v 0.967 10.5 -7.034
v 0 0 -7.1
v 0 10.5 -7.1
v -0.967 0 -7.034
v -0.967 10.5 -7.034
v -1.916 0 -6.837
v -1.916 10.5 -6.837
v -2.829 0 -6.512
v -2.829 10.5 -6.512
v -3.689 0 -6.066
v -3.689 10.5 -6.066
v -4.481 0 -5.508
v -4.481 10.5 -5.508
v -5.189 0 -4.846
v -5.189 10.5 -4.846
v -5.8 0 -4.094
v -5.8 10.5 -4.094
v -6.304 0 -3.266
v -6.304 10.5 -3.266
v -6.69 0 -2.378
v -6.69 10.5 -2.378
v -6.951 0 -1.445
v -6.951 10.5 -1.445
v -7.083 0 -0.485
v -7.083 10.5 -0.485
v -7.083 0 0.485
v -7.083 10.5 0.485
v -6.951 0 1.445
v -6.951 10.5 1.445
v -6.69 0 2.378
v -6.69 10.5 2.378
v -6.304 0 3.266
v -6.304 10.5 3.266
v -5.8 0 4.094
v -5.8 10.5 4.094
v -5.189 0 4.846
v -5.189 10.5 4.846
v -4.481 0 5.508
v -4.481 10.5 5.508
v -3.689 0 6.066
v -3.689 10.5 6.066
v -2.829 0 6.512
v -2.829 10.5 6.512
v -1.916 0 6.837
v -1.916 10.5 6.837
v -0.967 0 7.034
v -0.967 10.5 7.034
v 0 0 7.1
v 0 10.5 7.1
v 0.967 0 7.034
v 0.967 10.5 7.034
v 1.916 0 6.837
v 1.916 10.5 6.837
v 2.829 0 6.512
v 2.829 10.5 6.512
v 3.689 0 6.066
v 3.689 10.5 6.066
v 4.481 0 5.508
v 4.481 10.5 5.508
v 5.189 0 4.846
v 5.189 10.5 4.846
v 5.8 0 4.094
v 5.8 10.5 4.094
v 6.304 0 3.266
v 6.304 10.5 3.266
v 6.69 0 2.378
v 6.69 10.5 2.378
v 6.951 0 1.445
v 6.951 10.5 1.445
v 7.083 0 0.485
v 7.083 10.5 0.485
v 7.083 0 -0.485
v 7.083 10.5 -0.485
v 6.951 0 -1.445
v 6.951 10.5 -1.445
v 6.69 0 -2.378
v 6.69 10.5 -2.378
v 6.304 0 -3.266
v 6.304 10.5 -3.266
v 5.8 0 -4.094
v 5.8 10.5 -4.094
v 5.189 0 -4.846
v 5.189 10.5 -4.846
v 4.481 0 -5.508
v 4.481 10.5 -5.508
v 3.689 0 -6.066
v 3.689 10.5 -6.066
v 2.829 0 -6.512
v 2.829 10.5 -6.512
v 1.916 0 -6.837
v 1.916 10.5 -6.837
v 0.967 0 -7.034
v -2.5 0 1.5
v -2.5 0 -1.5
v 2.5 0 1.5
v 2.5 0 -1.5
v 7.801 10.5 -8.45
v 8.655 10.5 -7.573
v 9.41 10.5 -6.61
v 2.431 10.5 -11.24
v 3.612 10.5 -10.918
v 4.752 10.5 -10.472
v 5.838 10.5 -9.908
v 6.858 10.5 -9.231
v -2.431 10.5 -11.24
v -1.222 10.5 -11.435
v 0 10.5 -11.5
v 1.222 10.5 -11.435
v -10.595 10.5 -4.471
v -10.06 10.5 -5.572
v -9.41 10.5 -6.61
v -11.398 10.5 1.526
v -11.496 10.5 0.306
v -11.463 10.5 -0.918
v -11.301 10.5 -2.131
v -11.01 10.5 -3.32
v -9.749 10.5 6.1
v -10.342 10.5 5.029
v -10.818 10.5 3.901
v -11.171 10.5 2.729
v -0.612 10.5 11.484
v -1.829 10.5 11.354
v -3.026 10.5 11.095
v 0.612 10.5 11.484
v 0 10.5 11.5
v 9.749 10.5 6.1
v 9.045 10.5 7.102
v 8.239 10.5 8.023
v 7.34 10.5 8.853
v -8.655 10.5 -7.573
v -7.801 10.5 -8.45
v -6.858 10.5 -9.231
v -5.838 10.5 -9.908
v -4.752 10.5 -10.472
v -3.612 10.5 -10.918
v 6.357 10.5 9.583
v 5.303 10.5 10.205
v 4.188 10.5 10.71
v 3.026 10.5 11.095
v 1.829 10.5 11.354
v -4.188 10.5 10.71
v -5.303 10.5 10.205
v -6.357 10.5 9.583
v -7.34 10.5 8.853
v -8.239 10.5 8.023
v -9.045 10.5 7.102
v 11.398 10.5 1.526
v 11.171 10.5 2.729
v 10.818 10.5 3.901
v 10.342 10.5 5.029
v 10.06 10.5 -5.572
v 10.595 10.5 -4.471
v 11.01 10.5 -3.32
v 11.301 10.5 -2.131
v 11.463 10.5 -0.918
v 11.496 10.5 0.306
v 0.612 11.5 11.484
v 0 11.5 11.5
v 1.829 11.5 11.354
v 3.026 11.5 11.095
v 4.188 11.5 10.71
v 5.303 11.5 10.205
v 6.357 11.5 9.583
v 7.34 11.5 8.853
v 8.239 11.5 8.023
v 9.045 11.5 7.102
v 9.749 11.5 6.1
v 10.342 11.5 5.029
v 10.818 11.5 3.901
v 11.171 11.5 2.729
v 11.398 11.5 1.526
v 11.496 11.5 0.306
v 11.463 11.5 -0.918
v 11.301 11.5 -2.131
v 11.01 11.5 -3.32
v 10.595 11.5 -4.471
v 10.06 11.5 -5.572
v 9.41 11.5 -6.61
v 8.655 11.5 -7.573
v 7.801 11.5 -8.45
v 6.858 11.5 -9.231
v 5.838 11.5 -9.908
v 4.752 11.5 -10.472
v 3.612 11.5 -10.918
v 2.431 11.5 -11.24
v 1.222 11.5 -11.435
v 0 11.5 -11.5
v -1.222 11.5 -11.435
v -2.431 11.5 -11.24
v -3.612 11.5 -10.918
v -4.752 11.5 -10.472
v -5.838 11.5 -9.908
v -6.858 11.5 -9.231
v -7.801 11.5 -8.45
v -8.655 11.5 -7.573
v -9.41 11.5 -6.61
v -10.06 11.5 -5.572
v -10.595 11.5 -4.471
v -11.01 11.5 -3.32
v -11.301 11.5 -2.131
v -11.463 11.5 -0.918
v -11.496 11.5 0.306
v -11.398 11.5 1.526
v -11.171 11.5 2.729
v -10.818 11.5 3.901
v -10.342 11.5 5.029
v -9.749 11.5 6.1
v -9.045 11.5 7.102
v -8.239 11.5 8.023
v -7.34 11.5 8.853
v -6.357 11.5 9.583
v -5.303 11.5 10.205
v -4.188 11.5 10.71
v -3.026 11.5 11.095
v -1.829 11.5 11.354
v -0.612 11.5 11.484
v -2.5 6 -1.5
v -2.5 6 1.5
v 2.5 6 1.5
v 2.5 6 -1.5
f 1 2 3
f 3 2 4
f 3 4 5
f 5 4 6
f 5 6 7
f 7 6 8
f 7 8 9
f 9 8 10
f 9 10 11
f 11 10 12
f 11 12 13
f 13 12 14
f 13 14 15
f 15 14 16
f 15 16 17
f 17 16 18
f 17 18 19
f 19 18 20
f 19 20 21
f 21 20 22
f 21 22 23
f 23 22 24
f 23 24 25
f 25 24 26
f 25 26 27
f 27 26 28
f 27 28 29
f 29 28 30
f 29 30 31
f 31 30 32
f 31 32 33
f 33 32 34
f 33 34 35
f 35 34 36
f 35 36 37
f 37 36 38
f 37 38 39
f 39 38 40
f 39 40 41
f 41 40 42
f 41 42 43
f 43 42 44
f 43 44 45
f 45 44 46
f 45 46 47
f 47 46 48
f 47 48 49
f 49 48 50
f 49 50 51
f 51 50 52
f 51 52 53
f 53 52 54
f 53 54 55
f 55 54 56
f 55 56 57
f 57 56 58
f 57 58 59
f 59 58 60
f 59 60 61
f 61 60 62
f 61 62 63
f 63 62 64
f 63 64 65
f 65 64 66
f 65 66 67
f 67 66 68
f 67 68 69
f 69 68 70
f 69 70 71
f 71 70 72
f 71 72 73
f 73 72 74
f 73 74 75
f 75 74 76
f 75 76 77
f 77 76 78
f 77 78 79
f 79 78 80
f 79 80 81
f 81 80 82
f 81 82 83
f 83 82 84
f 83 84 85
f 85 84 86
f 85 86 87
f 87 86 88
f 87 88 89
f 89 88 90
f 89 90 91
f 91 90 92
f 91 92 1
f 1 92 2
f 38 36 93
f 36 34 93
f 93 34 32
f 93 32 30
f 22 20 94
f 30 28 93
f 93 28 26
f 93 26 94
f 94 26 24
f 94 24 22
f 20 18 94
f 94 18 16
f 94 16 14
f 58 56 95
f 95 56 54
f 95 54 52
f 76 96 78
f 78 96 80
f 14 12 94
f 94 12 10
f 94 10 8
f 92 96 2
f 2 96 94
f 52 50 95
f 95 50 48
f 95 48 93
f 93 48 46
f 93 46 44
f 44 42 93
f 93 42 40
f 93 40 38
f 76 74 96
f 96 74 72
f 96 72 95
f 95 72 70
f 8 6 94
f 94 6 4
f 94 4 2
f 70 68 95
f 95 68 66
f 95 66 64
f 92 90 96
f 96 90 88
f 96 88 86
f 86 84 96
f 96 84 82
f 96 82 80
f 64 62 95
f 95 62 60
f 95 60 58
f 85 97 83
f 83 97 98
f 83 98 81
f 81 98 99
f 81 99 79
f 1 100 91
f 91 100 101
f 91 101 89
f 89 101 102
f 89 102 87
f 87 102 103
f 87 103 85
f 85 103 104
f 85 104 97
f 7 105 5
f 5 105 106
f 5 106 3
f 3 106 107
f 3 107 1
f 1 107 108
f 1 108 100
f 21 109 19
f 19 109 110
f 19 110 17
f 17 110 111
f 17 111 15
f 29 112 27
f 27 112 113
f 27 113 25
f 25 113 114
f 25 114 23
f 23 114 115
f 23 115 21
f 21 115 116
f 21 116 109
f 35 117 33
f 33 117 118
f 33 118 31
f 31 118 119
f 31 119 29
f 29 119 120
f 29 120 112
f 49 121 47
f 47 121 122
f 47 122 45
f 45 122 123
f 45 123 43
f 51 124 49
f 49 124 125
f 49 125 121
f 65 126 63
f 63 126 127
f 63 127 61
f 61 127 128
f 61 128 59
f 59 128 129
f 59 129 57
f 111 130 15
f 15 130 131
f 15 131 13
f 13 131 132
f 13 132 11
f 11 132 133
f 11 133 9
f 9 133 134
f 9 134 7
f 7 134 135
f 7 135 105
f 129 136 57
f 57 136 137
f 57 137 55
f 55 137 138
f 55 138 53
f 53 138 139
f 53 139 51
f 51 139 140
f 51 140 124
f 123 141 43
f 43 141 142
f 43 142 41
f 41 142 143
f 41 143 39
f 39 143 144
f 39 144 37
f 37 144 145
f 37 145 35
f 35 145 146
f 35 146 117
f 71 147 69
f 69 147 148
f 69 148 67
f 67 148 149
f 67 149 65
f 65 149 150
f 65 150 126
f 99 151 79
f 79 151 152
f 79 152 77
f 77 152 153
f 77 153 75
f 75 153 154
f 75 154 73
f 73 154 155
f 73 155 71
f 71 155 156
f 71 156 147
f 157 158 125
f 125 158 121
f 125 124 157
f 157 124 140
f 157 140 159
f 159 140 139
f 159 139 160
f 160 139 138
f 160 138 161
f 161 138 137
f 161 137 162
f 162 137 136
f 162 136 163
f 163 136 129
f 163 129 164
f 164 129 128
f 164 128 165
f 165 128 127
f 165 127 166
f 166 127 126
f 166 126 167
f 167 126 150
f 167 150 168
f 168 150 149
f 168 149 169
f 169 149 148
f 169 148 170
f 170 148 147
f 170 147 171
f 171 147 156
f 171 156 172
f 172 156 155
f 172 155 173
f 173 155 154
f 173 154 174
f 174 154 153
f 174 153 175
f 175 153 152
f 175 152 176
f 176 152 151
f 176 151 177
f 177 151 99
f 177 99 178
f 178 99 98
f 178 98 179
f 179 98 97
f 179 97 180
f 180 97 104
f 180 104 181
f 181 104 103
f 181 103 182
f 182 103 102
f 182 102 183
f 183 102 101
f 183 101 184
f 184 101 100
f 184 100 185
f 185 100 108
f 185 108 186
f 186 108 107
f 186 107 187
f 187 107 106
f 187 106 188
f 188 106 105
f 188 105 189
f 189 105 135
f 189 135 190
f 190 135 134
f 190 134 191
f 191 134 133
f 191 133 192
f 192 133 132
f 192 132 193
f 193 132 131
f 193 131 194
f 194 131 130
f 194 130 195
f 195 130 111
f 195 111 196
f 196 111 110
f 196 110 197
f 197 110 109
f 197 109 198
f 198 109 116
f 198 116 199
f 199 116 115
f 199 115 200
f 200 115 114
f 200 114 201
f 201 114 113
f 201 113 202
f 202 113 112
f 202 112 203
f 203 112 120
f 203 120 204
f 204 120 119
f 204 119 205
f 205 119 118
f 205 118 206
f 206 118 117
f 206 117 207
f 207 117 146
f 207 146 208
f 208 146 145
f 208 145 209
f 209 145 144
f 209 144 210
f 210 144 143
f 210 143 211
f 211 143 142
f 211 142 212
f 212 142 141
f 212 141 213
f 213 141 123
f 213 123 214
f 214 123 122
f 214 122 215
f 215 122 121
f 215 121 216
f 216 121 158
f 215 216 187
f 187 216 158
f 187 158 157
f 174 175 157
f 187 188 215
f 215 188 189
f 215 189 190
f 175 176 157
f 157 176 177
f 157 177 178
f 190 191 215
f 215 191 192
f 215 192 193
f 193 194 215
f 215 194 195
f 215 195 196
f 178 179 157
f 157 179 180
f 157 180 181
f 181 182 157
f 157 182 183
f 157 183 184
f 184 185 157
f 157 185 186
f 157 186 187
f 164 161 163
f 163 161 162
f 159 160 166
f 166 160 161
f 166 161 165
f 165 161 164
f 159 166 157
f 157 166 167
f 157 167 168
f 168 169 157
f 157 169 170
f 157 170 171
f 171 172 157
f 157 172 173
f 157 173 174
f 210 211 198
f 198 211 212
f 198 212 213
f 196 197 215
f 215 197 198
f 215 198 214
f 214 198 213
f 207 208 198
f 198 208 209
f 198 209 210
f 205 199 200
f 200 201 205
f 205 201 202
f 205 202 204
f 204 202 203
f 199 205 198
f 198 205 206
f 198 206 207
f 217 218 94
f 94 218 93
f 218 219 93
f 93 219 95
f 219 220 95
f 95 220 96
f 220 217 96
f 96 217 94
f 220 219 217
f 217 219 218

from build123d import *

# Parameters (mm, degrees)
SKETCH1_R           = 7.1
BOSS_EXTRUDE1_DEPTH = 10.5
SKETCH2_R           = 11.5
BOSS_EXTRUDE2_DEPTH = 1
SKETCH3_W           = 5
SKETCH3_H           = 3
CUT_EXTRUDE1_DEPTH  = 6


with BuildPart() as part:
    # Sketch1 → Boss-Extrude1 (new body)
    with BuildSketch(Plane(origin=(0, 0, 0), x_dir=(1, 0, 0), z_dir=(0, 1, 0))):
        Circle(SKETCH1_R)
    extrude(amount=BOSS_EXTRUDE1_DEPTH)

    # Sketch2 → Boss-Extrude2 (add)
    with BuildSketch(Plane(origin=(0, 10.5, 0), x_dir=(1, 0, 0), z_dir=(0, 1, 0))):
        Circle(SKETCH2_R)
    extrude(amount=BOSS_EXTRUDE2_DEPTH)

    # Sketch3 → Cut-Extrude1 (cut)
    with BuildSketch(Plane.XZ):
        Rectangle(SKETCH3_W, SKETCH3_H)
    extrude(amount=-CUT_EXTRUDE1_DEPTH, mode=Mode.SUBTRACT)


solid = part.part
